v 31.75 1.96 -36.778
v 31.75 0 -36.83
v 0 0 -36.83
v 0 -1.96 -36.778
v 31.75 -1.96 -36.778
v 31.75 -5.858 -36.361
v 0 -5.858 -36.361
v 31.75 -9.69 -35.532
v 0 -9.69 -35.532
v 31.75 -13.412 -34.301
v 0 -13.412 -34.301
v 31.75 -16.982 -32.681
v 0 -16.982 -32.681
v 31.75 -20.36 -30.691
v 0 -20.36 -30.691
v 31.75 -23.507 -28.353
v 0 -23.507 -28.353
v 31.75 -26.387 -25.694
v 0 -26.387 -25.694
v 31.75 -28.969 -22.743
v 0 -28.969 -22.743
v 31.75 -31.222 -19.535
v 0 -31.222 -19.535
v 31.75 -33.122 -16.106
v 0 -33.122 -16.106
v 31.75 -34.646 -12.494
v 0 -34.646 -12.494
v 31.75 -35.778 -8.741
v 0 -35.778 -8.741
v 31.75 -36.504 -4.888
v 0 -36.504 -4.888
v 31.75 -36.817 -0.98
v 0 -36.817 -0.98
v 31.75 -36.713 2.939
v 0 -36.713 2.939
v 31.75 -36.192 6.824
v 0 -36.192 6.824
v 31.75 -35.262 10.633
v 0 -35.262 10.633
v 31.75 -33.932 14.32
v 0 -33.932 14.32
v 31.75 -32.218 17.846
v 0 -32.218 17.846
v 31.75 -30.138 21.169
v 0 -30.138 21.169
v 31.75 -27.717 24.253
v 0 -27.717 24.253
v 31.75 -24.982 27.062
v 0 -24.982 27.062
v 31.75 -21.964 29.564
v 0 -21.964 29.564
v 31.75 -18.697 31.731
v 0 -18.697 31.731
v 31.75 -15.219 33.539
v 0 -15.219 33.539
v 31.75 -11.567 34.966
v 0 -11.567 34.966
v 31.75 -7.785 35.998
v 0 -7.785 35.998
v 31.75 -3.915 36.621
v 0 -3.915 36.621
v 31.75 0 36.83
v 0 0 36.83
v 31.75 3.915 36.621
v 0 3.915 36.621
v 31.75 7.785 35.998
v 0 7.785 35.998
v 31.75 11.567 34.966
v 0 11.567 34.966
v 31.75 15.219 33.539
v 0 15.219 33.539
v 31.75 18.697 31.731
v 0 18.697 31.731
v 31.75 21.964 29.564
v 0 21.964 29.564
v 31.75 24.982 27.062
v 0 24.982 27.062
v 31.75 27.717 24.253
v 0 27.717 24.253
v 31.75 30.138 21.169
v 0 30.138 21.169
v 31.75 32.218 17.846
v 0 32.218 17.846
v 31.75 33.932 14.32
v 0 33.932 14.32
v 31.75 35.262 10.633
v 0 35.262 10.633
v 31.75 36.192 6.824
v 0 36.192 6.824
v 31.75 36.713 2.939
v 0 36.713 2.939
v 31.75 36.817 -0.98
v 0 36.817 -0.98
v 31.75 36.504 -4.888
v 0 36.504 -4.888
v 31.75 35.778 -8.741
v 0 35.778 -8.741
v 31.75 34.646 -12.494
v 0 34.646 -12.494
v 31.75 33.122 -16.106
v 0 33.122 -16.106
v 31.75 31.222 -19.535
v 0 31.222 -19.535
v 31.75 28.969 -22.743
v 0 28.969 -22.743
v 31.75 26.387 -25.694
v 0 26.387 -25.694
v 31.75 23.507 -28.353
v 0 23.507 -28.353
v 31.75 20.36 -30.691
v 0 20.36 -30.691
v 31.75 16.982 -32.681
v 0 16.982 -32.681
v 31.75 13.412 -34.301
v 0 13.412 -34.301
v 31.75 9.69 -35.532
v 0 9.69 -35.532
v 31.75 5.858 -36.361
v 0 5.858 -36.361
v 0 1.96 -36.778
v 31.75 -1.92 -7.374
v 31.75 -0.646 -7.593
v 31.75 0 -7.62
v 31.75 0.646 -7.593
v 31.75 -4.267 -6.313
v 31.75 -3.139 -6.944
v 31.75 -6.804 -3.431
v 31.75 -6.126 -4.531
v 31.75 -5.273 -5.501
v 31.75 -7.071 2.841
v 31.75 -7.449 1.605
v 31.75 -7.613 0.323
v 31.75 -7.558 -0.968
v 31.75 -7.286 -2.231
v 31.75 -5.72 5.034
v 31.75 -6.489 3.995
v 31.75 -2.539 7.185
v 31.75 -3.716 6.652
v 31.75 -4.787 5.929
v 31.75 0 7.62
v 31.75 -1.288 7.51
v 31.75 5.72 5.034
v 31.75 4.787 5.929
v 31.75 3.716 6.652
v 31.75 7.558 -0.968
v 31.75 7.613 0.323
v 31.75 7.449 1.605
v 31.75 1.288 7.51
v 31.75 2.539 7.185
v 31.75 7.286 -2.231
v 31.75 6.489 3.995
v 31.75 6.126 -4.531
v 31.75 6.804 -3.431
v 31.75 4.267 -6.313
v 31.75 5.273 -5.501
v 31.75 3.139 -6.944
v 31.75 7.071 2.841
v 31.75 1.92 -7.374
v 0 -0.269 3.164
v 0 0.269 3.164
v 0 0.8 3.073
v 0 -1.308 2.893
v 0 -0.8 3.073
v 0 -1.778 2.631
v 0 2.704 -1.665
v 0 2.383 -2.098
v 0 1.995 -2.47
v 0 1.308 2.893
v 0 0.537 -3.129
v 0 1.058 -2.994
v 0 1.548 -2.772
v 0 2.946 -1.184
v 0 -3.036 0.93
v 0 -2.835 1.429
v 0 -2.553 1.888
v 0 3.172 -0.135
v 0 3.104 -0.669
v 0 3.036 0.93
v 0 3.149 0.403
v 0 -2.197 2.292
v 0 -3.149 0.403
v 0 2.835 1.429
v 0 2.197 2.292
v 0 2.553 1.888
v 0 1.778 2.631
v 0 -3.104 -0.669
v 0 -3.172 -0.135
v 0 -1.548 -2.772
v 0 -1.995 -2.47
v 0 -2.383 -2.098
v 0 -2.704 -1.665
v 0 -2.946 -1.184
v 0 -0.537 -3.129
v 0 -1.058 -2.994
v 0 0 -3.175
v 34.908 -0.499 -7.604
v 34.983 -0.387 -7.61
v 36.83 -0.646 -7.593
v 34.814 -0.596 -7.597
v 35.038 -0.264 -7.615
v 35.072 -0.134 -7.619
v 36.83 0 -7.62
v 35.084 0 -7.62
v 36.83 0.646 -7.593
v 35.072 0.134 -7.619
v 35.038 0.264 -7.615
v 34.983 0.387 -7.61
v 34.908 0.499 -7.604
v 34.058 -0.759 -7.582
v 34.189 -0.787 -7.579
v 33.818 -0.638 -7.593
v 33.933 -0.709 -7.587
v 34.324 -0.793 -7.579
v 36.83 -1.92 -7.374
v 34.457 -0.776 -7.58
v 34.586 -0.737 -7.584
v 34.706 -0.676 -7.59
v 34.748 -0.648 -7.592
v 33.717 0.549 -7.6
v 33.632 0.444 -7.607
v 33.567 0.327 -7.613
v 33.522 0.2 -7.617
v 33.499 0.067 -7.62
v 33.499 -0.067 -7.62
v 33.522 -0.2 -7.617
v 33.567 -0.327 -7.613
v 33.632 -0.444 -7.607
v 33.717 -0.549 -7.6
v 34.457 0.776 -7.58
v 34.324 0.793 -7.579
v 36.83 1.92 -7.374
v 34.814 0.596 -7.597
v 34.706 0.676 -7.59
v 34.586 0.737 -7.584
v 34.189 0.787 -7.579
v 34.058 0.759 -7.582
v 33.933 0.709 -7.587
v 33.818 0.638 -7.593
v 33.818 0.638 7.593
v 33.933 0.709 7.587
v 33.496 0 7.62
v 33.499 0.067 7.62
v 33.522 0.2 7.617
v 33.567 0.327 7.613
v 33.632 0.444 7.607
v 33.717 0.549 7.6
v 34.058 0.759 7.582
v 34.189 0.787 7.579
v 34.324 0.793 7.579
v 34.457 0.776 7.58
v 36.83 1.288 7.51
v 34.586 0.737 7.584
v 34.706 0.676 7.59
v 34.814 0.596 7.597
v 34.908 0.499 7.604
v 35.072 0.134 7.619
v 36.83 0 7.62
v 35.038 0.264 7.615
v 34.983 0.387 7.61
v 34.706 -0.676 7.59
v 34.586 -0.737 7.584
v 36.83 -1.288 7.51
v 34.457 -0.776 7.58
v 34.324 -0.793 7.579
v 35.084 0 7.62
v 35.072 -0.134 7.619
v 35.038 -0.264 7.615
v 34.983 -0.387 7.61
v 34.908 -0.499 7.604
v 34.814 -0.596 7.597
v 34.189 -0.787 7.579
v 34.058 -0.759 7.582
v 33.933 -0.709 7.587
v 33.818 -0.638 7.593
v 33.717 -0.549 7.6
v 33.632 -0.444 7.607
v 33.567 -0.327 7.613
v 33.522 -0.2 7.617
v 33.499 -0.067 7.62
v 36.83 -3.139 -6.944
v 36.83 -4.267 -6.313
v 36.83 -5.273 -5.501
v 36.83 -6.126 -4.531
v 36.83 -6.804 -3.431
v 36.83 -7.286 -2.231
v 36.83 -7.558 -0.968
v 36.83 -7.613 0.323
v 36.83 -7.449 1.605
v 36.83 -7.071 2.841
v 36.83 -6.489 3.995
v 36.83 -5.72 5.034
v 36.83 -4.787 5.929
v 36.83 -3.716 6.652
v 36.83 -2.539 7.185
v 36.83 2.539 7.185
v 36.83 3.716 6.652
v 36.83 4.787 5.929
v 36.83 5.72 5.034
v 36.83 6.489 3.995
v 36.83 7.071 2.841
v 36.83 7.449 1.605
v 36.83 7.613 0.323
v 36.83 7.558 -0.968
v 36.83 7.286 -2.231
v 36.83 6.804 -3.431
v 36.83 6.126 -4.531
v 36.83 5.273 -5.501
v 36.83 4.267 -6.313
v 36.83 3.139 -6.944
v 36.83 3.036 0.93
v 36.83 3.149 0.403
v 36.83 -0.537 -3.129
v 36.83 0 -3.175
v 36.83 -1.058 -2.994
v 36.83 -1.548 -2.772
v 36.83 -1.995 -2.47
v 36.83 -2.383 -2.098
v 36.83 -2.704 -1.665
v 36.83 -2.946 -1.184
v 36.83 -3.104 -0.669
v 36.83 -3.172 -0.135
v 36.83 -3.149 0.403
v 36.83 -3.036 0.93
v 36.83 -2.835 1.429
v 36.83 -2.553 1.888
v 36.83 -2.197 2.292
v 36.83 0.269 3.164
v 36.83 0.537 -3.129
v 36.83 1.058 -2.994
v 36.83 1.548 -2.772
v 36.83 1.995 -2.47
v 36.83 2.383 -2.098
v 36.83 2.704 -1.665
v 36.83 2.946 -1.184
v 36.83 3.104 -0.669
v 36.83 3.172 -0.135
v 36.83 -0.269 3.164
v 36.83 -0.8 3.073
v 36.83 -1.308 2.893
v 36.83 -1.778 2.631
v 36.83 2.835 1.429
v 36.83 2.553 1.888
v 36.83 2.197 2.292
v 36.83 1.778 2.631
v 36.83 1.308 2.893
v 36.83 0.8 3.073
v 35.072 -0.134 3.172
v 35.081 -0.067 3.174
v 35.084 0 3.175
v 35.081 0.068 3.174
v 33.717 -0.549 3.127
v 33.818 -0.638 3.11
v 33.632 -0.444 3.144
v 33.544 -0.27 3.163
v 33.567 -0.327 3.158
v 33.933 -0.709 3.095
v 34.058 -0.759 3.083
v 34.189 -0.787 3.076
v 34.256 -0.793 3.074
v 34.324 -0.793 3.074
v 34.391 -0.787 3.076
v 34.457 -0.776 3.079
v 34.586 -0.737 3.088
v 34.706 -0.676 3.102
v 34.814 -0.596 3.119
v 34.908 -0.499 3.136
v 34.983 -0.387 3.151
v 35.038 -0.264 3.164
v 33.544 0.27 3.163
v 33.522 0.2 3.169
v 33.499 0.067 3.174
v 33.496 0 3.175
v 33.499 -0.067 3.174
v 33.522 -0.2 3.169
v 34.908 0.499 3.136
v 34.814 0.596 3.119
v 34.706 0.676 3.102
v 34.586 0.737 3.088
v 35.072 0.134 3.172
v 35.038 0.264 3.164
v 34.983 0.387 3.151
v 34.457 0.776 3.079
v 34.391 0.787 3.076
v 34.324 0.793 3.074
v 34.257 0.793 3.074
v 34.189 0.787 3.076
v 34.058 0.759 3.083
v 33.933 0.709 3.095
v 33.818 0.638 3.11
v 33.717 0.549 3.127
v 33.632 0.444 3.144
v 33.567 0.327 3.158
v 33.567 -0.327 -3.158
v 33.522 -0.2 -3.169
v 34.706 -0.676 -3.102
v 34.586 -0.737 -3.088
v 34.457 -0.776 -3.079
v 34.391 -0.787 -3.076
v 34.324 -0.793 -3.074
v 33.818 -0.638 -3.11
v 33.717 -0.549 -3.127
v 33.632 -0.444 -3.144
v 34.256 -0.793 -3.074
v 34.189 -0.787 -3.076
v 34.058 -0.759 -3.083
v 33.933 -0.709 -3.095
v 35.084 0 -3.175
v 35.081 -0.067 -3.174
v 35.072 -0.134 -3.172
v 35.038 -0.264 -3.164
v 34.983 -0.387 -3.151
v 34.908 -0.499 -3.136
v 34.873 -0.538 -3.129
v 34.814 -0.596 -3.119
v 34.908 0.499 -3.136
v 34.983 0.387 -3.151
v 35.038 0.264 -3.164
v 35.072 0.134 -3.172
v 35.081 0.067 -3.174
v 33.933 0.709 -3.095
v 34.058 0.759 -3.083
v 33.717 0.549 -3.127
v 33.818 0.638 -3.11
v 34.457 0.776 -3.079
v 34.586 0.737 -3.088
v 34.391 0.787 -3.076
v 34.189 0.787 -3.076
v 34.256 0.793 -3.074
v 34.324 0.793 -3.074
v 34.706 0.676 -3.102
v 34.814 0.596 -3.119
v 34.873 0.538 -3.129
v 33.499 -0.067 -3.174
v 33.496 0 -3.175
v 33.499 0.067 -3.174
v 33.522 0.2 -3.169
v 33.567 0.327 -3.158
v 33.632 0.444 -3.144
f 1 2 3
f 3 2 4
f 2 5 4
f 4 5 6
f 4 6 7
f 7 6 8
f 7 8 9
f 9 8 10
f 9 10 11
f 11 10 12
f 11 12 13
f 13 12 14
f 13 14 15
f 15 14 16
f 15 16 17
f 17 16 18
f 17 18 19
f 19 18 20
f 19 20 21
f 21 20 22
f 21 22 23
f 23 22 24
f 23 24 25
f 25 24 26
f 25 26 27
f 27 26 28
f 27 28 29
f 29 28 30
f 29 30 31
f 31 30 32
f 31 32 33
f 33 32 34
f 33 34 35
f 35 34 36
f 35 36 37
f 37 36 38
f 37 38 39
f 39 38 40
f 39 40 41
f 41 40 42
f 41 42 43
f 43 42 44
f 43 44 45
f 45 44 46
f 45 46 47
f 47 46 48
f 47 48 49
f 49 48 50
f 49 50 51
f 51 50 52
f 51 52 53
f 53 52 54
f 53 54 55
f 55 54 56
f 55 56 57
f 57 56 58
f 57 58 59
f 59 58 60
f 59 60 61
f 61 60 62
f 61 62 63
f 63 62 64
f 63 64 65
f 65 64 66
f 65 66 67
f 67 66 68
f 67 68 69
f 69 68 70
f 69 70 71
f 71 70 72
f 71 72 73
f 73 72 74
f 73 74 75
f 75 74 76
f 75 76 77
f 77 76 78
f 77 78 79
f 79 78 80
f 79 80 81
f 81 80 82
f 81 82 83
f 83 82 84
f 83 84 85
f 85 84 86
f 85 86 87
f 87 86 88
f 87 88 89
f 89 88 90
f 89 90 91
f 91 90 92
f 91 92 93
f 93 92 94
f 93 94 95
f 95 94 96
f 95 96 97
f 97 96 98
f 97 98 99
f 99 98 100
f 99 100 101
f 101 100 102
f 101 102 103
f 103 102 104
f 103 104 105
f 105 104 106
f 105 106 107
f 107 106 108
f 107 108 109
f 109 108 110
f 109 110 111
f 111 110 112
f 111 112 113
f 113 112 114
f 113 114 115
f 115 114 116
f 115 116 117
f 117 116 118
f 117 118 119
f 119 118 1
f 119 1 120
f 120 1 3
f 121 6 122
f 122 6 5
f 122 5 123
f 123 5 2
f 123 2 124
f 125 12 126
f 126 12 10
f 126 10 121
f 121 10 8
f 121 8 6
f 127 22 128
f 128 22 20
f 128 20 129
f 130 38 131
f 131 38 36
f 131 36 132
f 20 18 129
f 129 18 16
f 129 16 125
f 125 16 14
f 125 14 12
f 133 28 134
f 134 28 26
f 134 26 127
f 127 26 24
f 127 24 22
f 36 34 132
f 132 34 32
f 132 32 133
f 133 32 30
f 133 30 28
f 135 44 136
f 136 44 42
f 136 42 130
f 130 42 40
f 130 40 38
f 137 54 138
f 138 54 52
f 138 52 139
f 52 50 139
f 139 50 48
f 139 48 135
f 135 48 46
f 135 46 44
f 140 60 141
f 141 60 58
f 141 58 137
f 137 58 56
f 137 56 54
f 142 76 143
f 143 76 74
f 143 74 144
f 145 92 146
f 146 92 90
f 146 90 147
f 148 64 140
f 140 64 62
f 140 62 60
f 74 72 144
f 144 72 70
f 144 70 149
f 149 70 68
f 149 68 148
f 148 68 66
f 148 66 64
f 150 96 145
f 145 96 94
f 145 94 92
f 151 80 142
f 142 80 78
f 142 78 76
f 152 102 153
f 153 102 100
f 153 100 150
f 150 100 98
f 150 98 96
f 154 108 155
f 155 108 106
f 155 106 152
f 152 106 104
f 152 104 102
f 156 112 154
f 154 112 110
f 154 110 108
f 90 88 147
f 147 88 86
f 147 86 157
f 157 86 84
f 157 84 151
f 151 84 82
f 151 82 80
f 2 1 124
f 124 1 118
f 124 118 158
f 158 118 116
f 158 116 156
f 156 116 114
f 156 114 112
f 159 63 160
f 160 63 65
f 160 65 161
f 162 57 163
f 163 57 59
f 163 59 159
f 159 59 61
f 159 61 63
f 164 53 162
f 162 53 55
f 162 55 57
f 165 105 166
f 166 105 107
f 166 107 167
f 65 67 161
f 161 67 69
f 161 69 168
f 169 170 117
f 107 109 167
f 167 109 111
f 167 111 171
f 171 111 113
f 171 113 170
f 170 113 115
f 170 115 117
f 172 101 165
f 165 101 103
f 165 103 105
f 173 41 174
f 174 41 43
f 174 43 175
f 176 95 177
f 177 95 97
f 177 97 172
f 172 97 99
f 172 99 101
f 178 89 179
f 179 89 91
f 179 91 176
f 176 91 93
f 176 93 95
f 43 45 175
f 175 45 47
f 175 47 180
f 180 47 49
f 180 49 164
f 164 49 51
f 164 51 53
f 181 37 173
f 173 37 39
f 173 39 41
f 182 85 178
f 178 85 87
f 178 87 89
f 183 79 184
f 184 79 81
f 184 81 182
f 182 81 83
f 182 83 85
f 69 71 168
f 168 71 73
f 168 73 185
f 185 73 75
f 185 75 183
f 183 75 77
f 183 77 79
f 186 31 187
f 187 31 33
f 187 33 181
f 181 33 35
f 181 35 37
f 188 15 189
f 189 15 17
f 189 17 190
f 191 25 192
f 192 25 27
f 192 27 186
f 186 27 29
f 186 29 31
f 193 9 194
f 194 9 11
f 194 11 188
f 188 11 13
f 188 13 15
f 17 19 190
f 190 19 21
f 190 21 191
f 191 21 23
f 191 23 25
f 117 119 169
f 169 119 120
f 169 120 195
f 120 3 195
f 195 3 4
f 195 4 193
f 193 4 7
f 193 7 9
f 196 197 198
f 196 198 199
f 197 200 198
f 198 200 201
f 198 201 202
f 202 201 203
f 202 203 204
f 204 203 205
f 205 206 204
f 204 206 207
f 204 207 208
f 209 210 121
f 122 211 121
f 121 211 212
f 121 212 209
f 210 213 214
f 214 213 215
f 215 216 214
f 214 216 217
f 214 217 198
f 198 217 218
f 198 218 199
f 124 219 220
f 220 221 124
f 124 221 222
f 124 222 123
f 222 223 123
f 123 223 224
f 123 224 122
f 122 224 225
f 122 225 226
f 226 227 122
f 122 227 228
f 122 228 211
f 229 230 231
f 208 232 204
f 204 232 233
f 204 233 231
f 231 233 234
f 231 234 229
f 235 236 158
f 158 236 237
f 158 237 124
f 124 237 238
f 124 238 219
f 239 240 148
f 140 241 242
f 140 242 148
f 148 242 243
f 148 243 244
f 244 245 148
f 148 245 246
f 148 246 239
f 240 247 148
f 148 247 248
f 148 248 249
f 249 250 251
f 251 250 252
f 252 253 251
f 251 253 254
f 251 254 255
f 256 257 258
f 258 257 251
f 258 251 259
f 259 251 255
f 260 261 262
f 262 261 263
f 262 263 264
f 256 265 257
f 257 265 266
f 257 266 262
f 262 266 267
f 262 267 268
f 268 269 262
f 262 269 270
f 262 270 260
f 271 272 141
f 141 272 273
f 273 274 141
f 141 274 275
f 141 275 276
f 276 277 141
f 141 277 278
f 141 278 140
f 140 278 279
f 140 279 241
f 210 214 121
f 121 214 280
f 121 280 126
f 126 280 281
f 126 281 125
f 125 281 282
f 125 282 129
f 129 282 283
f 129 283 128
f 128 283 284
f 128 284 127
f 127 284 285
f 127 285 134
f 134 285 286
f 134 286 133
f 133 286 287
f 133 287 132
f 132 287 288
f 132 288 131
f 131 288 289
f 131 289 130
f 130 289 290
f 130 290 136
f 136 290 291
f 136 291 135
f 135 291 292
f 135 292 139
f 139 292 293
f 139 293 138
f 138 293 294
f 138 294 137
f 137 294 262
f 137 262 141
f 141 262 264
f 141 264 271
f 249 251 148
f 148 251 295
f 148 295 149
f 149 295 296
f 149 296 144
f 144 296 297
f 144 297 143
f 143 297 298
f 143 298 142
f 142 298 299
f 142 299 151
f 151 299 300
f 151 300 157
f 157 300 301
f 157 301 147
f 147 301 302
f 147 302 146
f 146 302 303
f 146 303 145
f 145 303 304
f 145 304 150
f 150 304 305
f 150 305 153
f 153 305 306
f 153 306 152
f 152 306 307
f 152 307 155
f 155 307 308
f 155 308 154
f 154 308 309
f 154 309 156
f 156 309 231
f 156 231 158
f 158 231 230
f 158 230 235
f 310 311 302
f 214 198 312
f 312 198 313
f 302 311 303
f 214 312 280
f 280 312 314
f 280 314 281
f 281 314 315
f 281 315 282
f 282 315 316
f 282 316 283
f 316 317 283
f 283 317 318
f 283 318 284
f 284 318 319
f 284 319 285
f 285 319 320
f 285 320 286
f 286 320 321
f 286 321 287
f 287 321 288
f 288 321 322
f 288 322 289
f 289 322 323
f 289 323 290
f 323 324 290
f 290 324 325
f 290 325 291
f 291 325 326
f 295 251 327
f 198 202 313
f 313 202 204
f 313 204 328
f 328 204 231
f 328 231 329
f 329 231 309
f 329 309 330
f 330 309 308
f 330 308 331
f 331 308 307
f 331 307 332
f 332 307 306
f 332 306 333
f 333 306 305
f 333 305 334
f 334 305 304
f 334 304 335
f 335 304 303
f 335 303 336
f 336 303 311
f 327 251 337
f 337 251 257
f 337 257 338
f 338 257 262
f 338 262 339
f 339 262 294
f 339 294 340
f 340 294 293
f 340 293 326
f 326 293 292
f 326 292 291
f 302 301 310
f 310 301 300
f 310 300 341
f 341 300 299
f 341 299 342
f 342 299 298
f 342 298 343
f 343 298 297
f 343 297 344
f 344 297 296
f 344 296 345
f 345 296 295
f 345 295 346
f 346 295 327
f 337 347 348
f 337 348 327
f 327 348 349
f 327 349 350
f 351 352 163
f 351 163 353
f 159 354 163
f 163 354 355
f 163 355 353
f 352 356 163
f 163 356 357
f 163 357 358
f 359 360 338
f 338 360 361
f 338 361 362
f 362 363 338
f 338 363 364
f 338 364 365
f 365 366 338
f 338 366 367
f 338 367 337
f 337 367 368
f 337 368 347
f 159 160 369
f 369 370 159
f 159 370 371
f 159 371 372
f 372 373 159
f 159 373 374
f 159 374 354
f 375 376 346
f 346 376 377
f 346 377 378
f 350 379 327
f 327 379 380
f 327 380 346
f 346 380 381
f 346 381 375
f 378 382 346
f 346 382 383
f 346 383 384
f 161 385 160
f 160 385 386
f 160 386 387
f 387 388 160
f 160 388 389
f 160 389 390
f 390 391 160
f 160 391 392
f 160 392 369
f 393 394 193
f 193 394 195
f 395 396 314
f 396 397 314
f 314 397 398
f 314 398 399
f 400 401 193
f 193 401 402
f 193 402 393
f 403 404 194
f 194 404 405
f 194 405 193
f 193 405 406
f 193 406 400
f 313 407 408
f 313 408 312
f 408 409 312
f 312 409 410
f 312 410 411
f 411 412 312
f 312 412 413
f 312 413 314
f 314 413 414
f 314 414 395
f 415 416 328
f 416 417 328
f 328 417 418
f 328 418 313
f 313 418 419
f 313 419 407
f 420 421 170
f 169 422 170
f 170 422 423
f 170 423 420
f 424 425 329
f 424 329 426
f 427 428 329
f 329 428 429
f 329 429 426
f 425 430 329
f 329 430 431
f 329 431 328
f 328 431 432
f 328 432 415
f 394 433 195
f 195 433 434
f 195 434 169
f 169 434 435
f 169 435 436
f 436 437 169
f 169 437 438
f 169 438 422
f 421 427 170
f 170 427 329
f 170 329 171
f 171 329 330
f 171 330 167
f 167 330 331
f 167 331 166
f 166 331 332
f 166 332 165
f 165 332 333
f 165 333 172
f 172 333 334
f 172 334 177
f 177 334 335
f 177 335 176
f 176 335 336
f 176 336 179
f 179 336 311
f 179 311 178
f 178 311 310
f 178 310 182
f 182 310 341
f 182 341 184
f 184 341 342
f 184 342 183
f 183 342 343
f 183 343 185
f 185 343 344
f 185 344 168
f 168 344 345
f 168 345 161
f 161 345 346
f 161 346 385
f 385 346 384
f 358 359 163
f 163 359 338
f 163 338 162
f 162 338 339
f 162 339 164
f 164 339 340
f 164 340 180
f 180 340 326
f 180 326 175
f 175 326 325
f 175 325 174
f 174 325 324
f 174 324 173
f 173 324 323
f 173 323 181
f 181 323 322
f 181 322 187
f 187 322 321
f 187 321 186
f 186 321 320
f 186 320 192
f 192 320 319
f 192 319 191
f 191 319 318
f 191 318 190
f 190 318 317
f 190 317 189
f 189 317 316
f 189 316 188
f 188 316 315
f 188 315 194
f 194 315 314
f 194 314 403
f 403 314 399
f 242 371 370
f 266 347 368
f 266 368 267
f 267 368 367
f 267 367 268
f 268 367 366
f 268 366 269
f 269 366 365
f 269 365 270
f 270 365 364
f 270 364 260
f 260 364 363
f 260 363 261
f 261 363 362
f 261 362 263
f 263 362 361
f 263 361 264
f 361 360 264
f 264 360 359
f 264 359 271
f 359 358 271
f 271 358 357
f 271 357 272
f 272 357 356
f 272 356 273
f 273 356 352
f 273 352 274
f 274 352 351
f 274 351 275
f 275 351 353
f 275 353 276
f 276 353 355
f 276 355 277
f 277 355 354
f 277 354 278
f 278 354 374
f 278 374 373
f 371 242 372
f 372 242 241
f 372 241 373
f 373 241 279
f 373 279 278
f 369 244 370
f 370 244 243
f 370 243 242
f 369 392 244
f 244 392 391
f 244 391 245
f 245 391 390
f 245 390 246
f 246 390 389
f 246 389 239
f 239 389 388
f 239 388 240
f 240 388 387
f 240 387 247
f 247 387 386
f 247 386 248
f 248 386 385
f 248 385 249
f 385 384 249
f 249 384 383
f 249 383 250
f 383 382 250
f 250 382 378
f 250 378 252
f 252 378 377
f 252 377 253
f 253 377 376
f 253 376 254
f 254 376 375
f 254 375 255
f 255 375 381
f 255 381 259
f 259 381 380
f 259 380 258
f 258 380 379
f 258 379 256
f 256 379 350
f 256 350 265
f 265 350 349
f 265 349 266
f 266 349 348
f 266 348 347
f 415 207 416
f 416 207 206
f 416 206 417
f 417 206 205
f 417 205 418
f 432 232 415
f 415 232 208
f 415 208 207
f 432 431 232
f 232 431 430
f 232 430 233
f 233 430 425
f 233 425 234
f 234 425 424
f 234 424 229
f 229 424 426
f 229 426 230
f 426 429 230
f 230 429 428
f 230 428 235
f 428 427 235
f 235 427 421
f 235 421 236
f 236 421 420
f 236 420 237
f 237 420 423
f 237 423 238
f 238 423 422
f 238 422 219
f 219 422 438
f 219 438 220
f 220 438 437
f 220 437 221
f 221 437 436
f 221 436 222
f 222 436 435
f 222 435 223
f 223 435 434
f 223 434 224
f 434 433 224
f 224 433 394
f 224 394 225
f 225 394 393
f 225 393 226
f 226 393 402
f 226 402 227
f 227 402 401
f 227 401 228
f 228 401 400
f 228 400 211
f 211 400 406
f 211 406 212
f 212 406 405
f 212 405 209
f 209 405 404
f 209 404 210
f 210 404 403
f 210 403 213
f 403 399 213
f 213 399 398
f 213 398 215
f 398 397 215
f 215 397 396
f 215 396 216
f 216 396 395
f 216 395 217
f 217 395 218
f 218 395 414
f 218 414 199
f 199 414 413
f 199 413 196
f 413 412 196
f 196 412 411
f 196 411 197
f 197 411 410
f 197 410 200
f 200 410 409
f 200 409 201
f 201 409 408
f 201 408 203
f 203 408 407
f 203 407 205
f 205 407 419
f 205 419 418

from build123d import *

# Parameters (mm, degrees)
SKETCH1_R               = 36.83
BOSS_EXTRUDE1_DEPTH     = 31.75
SKETCH3_R               = 7.62
BOSS_EXTRUDE2_DEPTH     = 5.08
BOSS_EXTRUDE3_START     = -31.75
SKETCH3_2_R             = 7.62
BOSS_EXTRUDE3_DEPTH     = 5.08
SKETCH2_R               = 3.175
CUT_EXTRUDE1_DEPTH      = 6.08
CUT_EXTRUDE1_DEPTH_BACK = 37.83
SKETCH4_R               = 0.79375
CUT_EXTRUDE2_DEPTH      = 37.83
CUT_EXTRUDE2_DEPTH_BACK = 37.83
SKETCH5_W               = 11.37457975
SKETCH5_H               = 27.007523476
CUT_EXTRUDE3_DEPTH      = 37.83
CUT_EXTRUDE3_DEPTH_BACK = 37.83


with BuildPart() as part:
    # Sketch1 → Boss-Extrude1 (new body)
    with BuildSketch(Plane(origin=(0, 0, 0), x_dir=(0, 0, -1), z_dir=(1, 0, 0))):
        Circle(SKETCH1_R)
    extrude(amount=BOSS_EXTRUDE1_DEPTH)

    # Sketch3 → Boss-Extrude2 (add)
    with BuildSketch(Plane(origin=(31.75, 0, 0), x_dir=(0, 0, -1), z_dir=(1, 0, 0))):
        Circle(SKETCH3_R)
    extrude(amount=BOSS_EXTRUDE2_DEPTH)

    # Sketch3<2> → Boss-Extrude3 (add)
    with BuildSketch(Plane(origin=(31.75, 0, 0), x_dir=(0, 0, -1), z_dir=(1, 0, 0)).offset(BOSS_EXTRUDE3_START)):
        Circle(SKETCH3_2_R)
    extrude(amount=-BOSS_EXTRUDE3_DEPTH)

    # Sketch2 → Cut-Extrude1 (cut, two sides)
    with BuildSketch(Plane(origin=(31.75, 0, 0), x_dir=(0, 0, -1), z_dir=(1, 0, 0))) as cut_extrude1_sk:
        Circle(SKETCH2_R)
    extrude(amount=CUT_EXTRUDE1_DEPTH, mode=Mode.SUBTRACT)
    extrude(cut_extrude1_sk.sketch, amount=-CUT_EXTRUDE1_DEPTH_BACK, mode=Mode.SUBTRACT)

    # Sketch4 → Cut-Extrude2 (cut, two sides)
    with BuildSketch(Plane.XY) as cut_extrude2_sk:
        with Locations((34.29, 0)):
            Circle(SKETCH4_R)
        with Locations((-2.54, 0)):
            Circle(SKETCH4_R)
    extrude(amount=CUT_EXTRUDE2_DEPTH, mode=Mode.SUBTRACT)
    extrude(cut_extrude2_sk.sketch, amount=-CUT_EXTRUDE2_DEPTH_BACK, mode=Mode.SUBTRACT)

    # Sketch5 → Cut-Extrude3 (cut, two sides)
    with BuildSketch(Plane(origin=(0, 0, 0), x_dir=(1, 0, 0), z_dir=(0, 1, 0))) as cut_extrude3_sk:
        with Locations((-5.687289875, -0.244411977)):
            Rectangle(SKETCH5_W, SKETCH5_H)
    extrude(amount=CUT_EXTRUDE3_DEPTH, mode=Mode.SUBTRACT)
    extrude(cut_extrude3_sk.sketch, amount=-CUT_EXTRUDE3_DEPTH_BACK, mode=Mode.SUBTRACT)


solid = part.part
